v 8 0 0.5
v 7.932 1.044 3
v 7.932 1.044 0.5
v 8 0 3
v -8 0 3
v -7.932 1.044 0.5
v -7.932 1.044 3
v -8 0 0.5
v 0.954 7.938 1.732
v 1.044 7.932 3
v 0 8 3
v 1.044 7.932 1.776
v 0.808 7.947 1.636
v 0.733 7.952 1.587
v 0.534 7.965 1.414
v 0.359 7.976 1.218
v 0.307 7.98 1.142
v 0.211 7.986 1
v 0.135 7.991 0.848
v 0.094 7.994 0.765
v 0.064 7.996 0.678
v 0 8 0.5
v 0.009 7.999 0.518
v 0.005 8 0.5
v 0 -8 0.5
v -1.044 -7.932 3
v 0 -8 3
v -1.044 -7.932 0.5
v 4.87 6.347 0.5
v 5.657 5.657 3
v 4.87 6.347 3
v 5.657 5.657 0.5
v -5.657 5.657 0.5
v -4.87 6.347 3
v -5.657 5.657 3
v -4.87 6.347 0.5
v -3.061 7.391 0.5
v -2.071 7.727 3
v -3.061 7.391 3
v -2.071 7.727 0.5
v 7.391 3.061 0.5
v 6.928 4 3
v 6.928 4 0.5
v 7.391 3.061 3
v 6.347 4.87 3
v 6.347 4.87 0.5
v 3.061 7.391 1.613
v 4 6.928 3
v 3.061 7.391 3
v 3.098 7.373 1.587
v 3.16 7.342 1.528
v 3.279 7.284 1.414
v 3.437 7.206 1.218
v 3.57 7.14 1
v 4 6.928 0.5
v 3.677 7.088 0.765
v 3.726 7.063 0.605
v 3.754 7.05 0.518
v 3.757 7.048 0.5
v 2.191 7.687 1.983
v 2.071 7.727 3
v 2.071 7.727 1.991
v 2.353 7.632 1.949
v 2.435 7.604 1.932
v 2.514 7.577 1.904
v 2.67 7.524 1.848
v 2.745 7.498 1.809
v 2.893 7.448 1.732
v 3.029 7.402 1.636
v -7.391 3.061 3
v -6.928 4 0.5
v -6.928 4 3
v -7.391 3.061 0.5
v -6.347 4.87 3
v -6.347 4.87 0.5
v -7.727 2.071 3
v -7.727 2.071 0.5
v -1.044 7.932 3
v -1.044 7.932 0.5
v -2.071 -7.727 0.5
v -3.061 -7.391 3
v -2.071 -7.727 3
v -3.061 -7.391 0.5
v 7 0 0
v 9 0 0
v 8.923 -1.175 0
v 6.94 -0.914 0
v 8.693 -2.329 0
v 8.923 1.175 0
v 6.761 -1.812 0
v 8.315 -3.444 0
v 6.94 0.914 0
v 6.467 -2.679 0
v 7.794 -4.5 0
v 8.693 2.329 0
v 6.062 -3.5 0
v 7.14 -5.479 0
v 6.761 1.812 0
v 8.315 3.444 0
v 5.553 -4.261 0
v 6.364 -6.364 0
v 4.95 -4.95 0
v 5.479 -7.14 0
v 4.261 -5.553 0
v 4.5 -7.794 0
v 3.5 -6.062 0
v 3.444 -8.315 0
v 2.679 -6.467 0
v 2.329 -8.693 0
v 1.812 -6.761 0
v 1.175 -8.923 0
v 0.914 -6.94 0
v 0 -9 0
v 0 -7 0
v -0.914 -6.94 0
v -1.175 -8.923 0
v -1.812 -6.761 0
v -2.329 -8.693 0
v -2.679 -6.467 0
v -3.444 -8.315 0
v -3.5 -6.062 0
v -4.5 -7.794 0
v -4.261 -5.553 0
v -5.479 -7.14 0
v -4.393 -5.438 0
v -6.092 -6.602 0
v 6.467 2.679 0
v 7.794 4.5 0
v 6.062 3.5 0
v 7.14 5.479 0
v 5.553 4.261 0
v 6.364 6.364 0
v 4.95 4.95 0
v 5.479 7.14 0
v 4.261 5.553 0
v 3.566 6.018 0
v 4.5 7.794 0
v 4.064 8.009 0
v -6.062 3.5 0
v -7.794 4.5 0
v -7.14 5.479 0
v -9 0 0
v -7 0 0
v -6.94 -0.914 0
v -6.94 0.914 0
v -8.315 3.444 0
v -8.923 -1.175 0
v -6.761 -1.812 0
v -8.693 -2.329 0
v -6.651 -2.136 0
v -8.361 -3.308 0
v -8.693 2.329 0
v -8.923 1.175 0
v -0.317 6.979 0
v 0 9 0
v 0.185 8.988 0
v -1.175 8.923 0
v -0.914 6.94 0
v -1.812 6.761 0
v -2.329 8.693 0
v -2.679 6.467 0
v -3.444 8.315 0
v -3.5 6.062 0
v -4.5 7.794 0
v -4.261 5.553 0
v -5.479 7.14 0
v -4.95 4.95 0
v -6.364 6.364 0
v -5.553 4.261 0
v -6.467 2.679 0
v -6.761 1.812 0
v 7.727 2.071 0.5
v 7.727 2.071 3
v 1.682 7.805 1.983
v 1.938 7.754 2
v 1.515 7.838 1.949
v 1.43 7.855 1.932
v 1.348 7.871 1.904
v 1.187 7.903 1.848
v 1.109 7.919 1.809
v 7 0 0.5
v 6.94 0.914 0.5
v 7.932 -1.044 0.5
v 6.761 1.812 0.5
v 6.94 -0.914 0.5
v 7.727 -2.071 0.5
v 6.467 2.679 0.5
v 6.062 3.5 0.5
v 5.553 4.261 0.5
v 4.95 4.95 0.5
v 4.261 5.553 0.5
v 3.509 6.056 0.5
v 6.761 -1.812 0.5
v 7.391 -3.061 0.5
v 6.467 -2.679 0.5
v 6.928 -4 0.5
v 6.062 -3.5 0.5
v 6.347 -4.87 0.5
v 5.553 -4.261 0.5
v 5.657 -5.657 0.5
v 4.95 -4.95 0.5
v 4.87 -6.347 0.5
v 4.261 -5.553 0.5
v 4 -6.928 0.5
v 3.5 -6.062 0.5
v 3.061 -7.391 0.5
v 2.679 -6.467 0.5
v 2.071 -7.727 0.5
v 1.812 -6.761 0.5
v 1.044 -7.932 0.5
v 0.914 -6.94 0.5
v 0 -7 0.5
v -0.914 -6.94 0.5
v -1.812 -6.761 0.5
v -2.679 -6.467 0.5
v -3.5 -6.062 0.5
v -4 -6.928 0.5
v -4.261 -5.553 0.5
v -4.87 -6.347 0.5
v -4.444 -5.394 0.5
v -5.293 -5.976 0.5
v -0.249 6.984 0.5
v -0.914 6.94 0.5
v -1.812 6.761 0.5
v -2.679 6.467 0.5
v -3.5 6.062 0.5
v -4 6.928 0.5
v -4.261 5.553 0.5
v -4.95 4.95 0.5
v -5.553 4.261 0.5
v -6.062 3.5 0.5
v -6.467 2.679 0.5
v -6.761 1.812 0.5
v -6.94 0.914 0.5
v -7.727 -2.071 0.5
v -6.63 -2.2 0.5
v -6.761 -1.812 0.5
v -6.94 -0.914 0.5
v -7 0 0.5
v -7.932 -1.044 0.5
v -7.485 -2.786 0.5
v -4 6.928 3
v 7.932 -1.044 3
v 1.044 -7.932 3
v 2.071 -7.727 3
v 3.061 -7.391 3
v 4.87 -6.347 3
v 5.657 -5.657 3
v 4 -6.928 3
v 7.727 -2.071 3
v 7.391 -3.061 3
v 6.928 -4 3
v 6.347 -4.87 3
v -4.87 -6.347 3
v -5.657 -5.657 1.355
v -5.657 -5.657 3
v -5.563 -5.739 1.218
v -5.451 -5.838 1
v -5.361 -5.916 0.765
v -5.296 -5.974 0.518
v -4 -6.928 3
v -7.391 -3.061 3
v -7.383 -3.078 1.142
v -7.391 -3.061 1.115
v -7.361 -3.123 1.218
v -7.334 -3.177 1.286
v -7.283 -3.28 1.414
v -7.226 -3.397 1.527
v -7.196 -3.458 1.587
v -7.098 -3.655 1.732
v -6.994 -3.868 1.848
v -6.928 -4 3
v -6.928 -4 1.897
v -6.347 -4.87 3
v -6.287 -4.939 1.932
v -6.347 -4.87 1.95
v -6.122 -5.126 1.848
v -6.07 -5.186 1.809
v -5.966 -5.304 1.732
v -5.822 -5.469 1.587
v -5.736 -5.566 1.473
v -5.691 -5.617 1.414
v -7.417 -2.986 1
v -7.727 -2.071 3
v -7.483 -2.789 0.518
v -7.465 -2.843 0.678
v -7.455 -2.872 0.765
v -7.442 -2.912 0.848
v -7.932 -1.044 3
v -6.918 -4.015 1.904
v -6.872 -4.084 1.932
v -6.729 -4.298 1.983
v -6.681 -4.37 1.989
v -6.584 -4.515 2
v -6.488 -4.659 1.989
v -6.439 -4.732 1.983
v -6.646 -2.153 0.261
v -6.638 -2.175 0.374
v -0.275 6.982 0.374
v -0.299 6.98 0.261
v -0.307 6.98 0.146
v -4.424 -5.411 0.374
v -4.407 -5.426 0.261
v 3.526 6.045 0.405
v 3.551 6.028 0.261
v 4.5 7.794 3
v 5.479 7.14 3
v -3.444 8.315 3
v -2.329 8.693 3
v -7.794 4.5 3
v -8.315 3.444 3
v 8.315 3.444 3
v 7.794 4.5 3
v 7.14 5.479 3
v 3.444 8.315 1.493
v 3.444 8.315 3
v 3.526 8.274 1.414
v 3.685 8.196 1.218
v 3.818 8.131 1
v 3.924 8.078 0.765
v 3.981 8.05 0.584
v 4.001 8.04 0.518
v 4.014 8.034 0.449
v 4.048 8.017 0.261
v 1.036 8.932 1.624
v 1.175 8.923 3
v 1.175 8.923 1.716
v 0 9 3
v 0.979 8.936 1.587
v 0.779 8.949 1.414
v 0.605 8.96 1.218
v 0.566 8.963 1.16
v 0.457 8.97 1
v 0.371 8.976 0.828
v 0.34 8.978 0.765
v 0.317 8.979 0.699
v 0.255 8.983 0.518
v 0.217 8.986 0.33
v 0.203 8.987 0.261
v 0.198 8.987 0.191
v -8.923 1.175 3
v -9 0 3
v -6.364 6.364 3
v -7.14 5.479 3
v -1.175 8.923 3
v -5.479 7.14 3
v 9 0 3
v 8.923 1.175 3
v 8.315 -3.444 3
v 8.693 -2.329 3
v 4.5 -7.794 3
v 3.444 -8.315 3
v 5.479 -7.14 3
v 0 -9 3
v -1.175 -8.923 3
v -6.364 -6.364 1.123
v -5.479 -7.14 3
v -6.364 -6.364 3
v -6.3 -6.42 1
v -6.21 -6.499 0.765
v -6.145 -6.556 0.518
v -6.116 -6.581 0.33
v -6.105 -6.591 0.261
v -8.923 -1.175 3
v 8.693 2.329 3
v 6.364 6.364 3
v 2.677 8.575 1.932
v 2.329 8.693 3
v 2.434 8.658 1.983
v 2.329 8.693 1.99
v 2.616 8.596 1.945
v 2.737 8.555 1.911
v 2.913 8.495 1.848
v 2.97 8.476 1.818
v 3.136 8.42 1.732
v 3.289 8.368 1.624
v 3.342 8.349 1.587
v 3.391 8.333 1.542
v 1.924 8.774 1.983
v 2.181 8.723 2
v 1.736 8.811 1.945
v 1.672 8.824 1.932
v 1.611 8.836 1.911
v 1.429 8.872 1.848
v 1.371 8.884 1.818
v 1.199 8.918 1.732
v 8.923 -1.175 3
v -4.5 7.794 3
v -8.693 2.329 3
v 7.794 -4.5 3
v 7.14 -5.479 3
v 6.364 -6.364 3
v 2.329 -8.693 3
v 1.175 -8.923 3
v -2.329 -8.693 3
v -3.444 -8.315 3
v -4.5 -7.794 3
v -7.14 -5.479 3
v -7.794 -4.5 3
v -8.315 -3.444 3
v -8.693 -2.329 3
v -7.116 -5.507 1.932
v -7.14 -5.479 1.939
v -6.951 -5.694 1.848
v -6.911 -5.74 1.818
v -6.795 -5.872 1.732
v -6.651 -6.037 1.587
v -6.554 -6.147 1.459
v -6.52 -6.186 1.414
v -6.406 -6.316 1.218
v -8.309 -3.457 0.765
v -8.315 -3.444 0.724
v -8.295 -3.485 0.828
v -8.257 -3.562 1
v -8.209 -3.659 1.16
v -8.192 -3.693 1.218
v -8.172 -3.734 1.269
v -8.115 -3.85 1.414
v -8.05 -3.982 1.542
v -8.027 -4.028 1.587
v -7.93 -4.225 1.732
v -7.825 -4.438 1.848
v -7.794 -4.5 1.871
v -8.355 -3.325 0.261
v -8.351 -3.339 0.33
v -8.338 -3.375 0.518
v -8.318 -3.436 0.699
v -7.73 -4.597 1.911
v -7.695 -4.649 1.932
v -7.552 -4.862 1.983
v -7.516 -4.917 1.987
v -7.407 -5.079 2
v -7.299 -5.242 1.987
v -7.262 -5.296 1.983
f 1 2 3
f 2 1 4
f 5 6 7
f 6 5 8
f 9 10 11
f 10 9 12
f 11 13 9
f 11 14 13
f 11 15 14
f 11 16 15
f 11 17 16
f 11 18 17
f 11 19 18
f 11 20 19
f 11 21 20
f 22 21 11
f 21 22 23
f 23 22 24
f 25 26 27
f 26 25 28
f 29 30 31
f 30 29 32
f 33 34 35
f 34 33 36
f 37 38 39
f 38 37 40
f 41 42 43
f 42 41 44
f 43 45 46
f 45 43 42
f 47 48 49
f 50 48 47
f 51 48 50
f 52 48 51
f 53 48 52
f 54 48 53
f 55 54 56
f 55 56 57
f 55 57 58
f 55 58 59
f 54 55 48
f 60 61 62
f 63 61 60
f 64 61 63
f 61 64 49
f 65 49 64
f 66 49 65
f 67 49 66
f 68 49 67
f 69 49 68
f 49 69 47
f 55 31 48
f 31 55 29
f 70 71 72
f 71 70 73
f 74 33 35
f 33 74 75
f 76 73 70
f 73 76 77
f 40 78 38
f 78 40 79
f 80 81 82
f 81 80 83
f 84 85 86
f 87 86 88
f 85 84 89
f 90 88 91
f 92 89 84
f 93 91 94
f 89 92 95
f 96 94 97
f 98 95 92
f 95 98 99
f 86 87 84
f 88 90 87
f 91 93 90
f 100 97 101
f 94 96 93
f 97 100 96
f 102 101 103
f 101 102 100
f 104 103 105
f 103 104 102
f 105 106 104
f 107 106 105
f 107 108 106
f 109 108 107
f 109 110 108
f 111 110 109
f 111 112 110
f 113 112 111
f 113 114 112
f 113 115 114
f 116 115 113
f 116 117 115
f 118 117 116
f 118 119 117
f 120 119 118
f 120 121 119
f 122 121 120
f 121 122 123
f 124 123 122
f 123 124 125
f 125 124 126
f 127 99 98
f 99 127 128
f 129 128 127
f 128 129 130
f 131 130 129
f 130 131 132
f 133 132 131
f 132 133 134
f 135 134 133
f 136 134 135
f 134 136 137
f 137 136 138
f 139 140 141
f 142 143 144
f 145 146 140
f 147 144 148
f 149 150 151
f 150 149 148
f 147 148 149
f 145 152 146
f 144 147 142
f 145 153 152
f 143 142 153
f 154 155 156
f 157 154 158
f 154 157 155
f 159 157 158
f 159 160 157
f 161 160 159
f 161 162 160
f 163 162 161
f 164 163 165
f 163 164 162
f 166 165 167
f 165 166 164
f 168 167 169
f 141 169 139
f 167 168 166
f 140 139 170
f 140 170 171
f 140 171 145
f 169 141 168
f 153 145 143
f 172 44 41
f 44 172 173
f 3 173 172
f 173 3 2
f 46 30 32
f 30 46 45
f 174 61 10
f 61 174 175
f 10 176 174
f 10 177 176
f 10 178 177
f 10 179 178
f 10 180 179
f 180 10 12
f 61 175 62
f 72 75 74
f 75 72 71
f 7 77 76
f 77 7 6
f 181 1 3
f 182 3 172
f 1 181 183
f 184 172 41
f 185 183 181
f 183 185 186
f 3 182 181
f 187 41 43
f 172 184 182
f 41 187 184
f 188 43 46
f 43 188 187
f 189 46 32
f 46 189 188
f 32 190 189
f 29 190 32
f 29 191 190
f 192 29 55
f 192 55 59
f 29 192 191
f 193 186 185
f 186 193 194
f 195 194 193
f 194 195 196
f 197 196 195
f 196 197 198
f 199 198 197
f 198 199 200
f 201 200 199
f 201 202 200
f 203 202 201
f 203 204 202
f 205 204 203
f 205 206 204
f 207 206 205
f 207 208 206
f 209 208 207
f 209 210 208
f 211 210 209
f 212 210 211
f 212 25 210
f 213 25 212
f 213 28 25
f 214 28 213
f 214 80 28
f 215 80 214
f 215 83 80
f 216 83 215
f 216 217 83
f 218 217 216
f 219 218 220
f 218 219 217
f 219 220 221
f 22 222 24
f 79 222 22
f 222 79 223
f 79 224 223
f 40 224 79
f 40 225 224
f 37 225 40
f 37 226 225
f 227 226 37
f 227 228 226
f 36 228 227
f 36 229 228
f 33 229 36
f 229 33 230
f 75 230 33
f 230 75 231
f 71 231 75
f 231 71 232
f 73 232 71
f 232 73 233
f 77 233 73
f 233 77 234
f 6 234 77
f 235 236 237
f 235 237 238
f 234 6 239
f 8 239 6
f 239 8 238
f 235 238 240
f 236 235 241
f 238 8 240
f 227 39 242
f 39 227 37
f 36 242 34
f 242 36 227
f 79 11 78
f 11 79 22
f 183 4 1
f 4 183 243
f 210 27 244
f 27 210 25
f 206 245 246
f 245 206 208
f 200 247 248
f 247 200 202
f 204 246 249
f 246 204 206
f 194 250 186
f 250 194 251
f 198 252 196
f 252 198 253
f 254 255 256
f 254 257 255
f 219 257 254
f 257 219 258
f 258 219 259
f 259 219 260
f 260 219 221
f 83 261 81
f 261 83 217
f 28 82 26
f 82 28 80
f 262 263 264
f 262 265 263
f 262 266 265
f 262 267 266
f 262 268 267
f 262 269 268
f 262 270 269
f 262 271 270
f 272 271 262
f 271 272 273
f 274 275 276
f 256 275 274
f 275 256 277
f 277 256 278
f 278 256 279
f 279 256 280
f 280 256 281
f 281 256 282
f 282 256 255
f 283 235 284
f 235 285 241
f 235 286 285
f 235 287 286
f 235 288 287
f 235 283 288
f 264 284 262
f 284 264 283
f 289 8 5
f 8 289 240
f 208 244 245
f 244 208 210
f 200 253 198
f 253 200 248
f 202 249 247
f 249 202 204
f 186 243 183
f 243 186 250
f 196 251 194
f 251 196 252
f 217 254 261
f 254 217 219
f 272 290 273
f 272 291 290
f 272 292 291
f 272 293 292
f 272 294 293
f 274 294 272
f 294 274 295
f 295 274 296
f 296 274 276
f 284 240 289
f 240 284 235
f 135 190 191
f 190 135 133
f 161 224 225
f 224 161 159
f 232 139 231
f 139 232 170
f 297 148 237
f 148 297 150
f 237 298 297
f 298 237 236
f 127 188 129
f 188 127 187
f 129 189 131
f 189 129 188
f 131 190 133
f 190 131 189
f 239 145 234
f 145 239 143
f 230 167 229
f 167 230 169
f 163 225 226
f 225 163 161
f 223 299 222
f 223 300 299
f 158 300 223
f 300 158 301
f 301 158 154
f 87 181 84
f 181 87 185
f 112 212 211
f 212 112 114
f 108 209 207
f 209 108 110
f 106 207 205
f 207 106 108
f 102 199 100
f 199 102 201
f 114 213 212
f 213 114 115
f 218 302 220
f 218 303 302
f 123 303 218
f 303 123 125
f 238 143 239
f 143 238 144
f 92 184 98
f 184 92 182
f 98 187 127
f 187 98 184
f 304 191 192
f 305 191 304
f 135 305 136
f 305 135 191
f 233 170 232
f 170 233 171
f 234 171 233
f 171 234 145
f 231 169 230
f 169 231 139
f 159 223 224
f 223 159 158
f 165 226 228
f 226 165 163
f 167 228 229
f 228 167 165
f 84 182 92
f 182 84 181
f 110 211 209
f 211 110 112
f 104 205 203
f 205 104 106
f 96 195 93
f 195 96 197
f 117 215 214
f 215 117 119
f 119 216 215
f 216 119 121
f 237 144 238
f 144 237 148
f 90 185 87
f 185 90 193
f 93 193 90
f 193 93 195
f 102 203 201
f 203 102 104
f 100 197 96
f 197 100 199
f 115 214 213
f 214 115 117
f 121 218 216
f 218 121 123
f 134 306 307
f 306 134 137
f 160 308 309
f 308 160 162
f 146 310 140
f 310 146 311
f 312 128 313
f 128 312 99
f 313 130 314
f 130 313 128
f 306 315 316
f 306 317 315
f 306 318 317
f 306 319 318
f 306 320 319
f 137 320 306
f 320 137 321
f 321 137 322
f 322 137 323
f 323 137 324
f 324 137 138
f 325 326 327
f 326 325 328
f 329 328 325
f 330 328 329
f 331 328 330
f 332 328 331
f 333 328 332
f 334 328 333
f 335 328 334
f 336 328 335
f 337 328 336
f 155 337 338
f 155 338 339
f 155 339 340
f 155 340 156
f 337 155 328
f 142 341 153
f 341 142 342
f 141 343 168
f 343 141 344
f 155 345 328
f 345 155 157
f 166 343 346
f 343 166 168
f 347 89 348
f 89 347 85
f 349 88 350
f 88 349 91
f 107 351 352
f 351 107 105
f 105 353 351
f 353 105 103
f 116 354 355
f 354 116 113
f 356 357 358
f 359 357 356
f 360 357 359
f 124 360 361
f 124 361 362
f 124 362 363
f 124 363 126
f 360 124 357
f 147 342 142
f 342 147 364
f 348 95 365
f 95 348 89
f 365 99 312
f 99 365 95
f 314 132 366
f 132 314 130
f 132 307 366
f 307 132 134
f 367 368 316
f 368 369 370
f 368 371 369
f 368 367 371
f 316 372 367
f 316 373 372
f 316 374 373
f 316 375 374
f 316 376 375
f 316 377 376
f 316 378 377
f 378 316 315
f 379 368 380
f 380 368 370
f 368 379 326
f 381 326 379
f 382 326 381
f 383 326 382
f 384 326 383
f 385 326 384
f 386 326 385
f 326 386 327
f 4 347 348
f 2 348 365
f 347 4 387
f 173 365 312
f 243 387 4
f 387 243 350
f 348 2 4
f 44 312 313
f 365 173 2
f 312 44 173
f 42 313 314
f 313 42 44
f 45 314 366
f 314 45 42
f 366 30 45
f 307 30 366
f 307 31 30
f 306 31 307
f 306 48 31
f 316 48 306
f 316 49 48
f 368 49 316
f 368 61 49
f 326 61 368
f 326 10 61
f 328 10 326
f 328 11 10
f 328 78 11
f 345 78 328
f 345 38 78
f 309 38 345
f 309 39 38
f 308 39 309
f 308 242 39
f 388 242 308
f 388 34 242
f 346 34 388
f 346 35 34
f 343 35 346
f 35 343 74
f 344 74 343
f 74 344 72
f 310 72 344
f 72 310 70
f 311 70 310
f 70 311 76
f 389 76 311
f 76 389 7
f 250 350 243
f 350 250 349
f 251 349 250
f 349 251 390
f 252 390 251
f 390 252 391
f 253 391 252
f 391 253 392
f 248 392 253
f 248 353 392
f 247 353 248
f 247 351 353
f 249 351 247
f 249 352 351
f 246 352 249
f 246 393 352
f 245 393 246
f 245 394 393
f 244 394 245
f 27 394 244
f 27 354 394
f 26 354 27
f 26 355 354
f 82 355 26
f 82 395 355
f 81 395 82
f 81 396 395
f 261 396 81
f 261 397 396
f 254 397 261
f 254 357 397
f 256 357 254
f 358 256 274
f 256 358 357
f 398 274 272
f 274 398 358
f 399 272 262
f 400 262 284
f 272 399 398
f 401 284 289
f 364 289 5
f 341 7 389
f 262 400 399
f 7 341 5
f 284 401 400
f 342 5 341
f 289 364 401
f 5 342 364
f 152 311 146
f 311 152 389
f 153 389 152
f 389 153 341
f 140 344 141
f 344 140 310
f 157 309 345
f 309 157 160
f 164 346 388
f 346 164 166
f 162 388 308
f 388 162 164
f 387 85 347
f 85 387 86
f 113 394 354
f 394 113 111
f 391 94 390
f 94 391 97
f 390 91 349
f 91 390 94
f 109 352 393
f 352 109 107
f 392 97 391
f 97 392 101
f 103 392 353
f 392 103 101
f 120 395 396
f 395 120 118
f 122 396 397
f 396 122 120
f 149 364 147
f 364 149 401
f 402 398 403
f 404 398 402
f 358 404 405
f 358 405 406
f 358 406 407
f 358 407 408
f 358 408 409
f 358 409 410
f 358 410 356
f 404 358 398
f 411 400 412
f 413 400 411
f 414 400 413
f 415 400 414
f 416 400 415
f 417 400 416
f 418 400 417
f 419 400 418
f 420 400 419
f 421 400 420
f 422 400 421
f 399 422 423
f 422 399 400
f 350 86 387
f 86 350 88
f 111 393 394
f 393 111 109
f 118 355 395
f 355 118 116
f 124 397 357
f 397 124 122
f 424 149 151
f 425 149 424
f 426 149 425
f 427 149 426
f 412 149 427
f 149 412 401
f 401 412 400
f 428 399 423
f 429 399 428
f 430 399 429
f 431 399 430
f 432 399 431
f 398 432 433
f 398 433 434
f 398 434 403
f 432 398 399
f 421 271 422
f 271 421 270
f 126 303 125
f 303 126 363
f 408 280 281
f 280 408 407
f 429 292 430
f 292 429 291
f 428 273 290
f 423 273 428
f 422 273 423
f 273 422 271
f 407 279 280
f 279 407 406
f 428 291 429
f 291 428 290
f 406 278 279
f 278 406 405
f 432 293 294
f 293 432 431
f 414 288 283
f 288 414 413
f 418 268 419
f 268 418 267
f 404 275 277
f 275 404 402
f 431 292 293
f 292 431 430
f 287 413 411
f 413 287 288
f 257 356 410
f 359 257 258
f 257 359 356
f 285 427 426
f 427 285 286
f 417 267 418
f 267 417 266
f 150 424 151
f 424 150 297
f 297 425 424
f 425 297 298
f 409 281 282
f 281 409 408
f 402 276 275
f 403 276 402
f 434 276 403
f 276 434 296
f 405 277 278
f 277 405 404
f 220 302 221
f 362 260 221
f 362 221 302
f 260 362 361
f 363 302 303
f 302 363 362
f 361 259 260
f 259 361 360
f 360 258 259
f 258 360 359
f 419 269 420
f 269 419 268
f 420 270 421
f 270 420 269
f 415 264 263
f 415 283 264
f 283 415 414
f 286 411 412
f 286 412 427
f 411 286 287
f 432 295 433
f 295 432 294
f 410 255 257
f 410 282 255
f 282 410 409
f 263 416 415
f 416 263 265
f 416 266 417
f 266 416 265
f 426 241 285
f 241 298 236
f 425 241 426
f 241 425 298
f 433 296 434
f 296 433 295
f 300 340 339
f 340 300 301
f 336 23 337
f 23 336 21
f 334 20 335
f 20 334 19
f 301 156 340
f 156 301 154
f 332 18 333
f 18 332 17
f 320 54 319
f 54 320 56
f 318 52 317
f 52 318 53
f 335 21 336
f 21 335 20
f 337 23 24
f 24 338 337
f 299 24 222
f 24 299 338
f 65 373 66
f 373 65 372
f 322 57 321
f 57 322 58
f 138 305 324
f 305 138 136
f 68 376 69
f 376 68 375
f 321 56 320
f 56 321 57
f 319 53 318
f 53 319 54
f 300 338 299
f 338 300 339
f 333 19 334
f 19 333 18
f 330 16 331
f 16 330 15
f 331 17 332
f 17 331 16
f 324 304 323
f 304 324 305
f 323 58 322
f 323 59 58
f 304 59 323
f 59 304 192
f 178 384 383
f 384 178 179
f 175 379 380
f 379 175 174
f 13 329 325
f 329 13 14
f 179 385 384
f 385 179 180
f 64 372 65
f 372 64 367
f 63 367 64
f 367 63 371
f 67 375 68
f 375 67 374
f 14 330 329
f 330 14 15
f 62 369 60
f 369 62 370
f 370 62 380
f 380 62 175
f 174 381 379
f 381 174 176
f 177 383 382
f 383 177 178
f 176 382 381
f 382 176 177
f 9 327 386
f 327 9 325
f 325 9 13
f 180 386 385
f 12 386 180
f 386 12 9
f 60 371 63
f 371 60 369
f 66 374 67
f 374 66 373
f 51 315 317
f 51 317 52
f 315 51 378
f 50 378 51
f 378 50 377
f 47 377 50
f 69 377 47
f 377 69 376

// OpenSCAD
// file: ../build_environments.scad
// build_environments.scad: modules to build level sections
//

module pool(diameter=10.0, wall_height=2.0, step_width=3.0, connections=[])
{
    difference() {
        union() {
        difference() {
            cylinder(h=0.5,r1=diameter+step_width,r2=diameter+step_width,$fn=48);
            translate([0,0,-0.1])
                cylinder(h=0.7,r1=diameter,r2=diameter,$fn=48);
        }
        difference() {
            cylinder(h=wall_height,r1=diameter+step_width+1.0,r2=diameter+step_width+1.0,$fn=48);
            translate([0,0,-0.1])
                cylinder(h=wall_height+0.2,r1=diameter+step_width,r2=diameter+step_width,$fn=48);
        }
        }
    
        for (c = connections)
        {
            rotate([0,90,0]) {
                angle = atan2(c[1],c[0]);
                rotate([-angle,0,0]) {
                    cylinder(h=diameter+5.0,r1=c[2],r2=c[2],$fn=48);
                }
            }
        }
    }
}

module straight(length=10.0, width=2.0, dy1=0.0, dy2=0.0, dz=0.0)
{
    dims = [0, 0, 0, 0, 0, (dz/length)];
    matrix = [
        [ 1, dims[0], dims[1], 0 ],
        [ dims[2], 1, dims[4], 0 ],
        [ dims[5], dims[3], 1, 0 ],
        [ 0, 0, 0, 1 ]
    ];
    multmatrix(matrix)
    difference() {
        translate([dy1,0,0])
        union() {
            rotate([0,90,0]) {
                difference() {
                    cylinder(h=(length-dy1-dy2),r1=width+1.0,r2=width+1.0,$fn=24);
                    translate([0,0,-0.1])
                        cylinder(h=(length-dy1-dy2+0.2),r1=width,r2=width,$fn=24);
                }
                difference() {
                    cylinder(h=1.0,r1=width+2.0,r2=width+2.0,$fn=24);
                    translate([0,0,-0.1])
                        cylinder(h=1.2,r1=width,r2=width,$fn=24);
                }
                translate([0,0,(length-dy1-dy2)-1.0]) {
                    difference() {
                        cylinder(h=1.0,r1=width+2.0,r2=width+2.0,$fn=24);
                        translate([0,0,-0.1])
                            cylinder(h=1.2,r1=width,r2=width,$fn=24);
                    }
                }
            }
        }
        translate([0,0,-(2*width+4.0)/2])
            cube([3*length,3*length,2*width+4.0],center=true);
    }
}

module curve(p0=[0,0], center=[0,0], dir=1, angle=0.0, width=2.0)
{
    radius = sqrt((p0[0]-center[0])*(p0[0]-center[0]) + (p0[1]-center[1])*(p0[1]-center[1]));
    if (dir == 0) {
        difference() {
            rotate([0,0,-90])
            difference() {
                rotate_extrude(angle = angle, convexity = 10, $fn=32)
                    translate([radius, 0, 0])
                        circle(r = width+1.0,$fn=24);
                rotate([0,0,-1.0])
                    rotate_extrude(angle = angle+2.0, convexity = 10, $fn=32)
                        translate([radius, 0, 0])
                            circle(r = width,$fn=24);
            }
            translate([0,0,-(2*width+4.0)/2])
                cube([5*radius,5*radius,2*width+4.0],center=true);
        }
    }
    else {
        difference() {
            rotate([0,0,90])
            difference() {
                rotate_extrude(angle = -angle, convexity = 10, $fn=32)
                    translate([radius, 0, 0])
                        circle(r = width+1.0,$fn=24);
                rotate([0,0,1.0])
                    rotate_extrude(angle = -angle-2.0, convexity = 10, $fn=32)
                        translate([radius, 0, 0])
                            circle(r = width,$fn=24);
            }
            translate([0,0,-(2*width+4.0)/2])
                cube([5*radius,5*radius,2*width+4.0],center=true);
        }
    }

}

// test pool
//pool(diameter=12.0000, wall_height=3.0000, step_width=3.0000, connections=[[0.0000,-26.0000,2.0000], [23.6074,0.0000,2.0000]]);

// test straight, slope
//straight(length=26.0000, width=2.0000, dy1=11.8322, dy2=6.7082, dz=0.0000);
//straight(length=29.1549, width=12.0000, dy1=0.0000, dy2=0.0000, dz=-15.0000);

// test curve
//curve(p0=[23.6074, 0.0000], center=[23.6074, 5.0000], dir=0, angle=60.1011, width=2.0000);
//curve(p0=[33.6426, 12.4219], center=[37.9771, 9.9295], dir=1, angle=120.4627, width=2.0000);
// main file
use <../build_environments.scad>;
pool(diameter=7.0000, wall_height=3.0000, step_width=1.0000, connections=[[-7.0073,-4.8050,2.0000], [6.0000,24.0000,2.0000]]);
